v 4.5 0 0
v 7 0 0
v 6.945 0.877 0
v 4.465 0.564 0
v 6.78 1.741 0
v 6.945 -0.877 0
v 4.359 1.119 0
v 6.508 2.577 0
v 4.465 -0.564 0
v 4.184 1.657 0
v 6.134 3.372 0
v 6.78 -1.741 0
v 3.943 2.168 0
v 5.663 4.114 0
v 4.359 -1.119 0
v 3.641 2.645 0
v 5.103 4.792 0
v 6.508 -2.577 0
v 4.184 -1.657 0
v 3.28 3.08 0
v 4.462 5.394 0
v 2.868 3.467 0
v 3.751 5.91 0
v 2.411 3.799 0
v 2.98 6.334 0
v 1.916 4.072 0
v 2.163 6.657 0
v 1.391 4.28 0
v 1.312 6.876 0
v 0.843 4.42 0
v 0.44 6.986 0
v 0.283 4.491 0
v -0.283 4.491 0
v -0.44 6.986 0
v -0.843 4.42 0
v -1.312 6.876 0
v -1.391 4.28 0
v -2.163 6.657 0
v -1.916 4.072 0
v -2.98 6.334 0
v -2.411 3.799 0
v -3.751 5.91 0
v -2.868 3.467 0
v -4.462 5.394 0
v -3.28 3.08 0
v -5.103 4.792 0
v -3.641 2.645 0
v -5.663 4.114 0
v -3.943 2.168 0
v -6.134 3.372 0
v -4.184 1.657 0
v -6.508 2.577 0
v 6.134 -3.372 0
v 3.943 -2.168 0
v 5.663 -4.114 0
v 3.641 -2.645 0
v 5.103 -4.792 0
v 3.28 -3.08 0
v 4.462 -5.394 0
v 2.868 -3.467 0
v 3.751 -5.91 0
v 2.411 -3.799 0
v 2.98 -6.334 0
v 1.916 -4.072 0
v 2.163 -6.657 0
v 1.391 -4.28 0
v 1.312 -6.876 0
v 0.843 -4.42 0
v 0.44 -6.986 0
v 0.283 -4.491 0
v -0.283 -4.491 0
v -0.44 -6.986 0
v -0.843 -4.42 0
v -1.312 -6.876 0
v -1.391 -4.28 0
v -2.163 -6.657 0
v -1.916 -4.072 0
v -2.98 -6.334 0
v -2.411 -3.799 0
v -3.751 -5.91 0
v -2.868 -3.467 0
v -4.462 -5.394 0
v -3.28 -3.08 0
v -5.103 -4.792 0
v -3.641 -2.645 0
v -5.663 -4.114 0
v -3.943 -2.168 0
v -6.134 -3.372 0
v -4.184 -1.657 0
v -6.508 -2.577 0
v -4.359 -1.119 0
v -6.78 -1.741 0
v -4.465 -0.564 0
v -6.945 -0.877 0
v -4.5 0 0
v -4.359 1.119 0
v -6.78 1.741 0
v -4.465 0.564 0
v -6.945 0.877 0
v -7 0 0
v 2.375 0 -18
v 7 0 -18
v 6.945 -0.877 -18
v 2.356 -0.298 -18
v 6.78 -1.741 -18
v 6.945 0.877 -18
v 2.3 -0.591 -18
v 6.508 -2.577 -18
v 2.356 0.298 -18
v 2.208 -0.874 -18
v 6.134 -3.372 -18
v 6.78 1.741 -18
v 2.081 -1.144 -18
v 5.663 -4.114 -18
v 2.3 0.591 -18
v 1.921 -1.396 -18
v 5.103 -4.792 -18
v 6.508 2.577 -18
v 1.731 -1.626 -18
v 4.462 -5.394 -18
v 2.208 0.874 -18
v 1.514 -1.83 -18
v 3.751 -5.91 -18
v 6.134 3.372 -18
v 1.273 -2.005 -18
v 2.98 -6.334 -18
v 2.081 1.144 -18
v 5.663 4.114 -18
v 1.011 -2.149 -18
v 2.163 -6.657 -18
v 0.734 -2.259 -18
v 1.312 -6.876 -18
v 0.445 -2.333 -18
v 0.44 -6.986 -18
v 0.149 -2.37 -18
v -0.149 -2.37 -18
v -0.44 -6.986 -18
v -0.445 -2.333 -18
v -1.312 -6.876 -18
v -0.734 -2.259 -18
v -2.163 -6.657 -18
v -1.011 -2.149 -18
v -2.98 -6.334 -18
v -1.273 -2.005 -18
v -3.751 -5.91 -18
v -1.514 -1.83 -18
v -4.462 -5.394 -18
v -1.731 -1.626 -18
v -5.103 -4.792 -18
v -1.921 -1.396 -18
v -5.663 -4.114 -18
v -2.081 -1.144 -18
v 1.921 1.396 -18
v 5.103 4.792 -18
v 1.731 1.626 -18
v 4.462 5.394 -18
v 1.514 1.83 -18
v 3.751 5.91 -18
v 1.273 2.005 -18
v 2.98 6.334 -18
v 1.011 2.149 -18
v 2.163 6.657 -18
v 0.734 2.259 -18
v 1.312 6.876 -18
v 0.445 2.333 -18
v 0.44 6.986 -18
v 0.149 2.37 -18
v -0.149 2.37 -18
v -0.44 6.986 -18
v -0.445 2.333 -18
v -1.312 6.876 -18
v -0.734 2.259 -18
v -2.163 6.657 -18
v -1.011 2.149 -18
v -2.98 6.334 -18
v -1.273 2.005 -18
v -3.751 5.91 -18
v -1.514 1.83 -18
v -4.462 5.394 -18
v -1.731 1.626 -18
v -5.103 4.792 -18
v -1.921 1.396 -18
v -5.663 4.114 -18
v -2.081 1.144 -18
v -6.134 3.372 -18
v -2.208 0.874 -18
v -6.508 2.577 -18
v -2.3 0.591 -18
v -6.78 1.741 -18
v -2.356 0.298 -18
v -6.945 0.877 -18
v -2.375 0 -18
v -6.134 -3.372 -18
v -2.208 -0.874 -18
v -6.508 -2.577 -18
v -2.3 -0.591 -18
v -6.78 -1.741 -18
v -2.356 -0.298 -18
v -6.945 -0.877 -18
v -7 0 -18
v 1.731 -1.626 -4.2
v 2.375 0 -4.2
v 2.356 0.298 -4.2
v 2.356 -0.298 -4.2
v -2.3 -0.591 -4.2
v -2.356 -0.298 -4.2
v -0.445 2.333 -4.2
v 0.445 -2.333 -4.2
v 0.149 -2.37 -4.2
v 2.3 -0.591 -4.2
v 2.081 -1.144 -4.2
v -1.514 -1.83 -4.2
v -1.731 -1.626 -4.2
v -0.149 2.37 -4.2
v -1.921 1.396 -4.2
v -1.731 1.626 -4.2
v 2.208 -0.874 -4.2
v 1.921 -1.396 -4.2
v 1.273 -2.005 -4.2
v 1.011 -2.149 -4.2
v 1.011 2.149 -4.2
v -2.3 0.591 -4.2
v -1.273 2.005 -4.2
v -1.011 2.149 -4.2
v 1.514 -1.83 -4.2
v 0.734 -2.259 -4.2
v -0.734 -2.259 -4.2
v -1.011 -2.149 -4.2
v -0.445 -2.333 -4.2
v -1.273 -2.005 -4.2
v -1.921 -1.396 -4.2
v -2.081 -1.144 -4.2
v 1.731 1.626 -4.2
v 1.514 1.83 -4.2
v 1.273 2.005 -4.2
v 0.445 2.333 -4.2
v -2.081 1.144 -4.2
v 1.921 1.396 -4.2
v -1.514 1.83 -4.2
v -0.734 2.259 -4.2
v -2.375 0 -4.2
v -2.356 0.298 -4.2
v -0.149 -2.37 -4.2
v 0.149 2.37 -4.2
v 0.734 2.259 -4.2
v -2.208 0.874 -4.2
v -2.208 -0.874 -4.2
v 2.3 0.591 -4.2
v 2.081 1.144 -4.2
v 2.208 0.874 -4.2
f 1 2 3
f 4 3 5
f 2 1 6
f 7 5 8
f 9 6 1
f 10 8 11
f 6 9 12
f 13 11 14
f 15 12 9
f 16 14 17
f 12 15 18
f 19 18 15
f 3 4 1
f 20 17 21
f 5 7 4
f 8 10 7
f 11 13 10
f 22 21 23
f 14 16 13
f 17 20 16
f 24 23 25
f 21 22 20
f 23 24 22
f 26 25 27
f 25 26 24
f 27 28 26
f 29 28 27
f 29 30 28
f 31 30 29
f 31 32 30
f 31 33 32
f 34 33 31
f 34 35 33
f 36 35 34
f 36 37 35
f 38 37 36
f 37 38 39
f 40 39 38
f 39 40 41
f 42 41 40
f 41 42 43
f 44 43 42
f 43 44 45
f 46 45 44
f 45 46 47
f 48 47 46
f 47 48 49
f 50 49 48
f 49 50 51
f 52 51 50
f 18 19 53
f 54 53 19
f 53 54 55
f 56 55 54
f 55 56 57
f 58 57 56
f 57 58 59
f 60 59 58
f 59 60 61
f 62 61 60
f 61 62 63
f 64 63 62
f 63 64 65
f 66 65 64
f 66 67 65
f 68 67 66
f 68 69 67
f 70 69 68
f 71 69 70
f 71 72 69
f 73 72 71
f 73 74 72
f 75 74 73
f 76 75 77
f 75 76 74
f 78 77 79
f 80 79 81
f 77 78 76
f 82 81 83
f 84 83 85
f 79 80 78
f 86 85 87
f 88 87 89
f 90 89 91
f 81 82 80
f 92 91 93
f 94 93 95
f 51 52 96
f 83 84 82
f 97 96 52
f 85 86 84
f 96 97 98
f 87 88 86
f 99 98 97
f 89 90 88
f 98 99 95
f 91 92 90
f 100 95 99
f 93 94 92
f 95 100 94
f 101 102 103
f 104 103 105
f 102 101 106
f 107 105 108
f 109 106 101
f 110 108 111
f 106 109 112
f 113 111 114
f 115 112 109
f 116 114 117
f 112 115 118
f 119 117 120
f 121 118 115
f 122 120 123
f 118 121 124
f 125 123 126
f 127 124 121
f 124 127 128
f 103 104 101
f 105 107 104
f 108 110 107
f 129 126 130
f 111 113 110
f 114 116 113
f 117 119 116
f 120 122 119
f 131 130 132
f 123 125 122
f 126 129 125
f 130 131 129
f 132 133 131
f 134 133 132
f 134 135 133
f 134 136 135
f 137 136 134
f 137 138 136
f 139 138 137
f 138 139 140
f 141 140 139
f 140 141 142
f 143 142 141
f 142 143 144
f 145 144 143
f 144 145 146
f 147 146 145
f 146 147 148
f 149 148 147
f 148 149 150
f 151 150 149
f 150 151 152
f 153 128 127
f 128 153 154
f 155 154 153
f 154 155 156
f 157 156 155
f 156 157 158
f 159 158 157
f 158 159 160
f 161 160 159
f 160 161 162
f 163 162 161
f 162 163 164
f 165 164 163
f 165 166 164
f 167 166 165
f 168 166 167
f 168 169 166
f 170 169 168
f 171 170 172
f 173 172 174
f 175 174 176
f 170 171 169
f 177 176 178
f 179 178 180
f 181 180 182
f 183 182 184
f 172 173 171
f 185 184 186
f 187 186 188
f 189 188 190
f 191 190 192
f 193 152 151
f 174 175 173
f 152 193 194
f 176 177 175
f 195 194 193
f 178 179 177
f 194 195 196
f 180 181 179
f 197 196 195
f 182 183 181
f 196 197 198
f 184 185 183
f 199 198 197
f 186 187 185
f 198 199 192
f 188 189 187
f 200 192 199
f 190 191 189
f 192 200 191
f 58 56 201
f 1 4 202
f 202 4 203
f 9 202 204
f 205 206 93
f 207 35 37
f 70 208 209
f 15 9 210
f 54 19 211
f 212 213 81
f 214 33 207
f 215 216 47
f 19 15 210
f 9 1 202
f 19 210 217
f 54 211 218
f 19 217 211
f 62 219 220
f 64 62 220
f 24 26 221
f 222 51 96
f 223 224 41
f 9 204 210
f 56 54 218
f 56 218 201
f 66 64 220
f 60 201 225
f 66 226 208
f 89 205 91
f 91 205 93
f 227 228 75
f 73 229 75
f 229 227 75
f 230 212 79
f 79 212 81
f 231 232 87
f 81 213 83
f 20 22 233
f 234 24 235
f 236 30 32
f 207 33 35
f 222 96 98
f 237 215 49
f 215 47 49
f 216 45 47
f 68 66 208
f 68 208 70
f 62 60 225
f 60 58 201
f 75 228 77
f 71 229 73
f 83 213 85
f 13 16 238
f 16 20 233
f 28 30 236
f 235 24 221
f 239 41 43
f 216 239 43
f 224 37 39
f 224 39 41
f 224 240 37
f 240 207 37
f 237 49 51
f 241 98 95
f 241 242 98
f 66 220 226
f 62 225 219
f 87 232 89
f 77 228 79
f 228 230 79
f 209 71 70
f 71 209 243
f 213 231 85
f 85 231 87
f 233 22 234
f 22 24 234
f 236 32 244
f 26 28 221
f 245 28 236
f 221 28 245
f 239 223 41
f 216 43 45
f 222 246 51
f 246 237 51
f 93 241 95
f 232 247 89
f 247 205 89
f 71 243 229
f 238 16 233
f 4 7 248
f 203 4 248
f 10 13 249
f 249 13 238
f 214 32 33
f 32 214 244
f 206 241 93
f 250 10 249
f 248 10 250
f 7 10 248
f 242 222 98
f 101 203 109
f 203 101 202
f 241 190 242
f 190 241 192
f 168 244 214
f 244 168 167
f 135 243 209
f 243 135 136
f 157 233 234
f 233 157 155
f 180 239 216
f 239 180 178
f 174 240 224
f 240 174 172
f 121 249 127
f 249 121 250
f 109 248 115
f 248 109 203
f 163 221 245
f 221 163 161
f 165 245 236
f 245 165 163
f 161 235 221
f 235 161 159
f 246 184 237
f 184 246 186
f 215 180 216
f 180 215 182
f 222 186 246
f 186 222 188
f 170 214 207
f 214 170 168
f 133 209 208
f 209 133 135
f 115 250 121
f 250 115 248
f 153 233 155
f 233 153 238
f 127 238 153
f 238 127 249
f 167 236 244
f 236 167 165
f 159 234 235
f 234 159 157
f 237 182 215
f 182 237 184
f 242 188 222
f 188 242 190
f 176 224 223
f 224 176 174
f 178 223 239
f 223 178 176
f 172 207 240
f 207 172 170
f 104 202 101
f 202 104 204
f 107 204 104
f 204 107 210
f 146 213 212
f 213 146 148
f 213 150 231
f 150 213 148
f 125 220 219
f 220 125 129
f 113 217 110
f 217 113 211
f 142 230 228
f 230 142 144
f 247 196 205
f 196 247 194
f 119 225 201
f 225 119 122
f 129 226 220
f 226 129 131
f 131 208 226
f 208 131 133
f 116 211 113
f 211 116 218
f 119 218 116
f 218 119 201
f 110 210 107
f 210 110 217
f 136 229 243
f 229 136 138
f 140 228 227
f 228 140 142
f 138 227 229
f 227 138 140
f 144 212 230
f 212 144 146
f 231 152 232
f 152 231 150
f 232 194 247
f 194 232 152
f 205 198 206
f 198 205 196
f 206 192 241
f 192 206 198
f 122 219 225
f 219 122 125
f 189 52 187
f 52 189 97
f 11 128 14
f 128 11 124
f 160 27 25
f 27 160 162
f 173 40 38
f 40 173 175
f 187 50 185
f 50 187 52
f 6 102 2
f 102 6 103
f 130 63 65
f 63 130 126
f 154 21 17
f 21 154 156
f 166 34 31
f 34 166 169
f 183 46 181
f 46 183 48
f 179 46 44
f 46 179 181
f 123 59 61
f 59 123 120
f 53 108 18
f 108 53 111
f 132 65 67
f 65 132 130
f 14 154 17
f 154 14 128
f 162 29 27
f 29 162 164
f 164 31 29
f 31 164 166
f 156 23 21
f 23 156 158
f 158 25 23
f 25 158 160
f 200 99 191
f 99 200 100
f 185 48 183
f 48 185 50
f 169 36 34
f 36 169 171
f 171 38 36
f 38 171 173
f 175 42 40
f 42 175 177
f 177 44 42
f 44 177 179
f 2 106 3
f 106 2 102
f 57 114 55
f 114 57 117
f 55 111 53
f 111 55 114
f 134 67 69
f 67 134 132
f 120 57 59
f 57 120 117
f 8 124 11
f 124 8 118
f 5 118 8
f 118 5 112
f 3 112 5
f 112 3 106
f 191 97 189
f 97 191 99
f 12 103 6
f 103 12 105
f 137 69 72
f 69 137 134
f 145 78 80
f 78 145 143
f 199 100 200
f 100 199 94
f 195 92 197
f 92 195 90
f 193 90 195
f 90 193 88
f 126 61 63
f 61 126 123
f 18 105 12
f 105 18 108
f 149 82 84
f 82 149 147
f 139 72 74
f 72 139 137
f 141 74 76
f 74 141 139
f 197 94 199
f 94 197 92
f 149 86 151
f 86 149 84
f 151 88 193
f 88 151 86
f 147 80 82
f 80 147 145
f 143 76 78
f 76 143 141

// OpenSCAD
$fn = 50;


difference() {
	union() {
		translate(v = [0, 0, -18.0000000000]) {
			cylinder(h = 18, r = 7.0000000000);
		}
		cylinder(h = 0, r = 10.0000000000);
	}
	union() {
		translate(v = [0, 0, 0]) {
			rotate(a = [0, 0, 0]) {
				difference() {
					union() {
						#translate(v = [0, 0, -18.0000000000]) {
							cylinder(h = 18, r = 2.2500000000);
						}
						#translate(v = [0, 0, -4.2000000000]) {
							cylinder(h = 4.2000000000, r = 7.0000000000, r1 = 2.3750000000, r2 = 4.5000000000);
						}
						#translate(v = [0, 0, -18.0000000000]) {
							cylinder(h = 18, r = 2.3750000000);
						}
						#translate(v = [0, 0, -18.0000000000]) {
							cylinder(h = 18, r = 2.2500000000);
						}
					}
					union();
				}
			}
		}
	}
}
